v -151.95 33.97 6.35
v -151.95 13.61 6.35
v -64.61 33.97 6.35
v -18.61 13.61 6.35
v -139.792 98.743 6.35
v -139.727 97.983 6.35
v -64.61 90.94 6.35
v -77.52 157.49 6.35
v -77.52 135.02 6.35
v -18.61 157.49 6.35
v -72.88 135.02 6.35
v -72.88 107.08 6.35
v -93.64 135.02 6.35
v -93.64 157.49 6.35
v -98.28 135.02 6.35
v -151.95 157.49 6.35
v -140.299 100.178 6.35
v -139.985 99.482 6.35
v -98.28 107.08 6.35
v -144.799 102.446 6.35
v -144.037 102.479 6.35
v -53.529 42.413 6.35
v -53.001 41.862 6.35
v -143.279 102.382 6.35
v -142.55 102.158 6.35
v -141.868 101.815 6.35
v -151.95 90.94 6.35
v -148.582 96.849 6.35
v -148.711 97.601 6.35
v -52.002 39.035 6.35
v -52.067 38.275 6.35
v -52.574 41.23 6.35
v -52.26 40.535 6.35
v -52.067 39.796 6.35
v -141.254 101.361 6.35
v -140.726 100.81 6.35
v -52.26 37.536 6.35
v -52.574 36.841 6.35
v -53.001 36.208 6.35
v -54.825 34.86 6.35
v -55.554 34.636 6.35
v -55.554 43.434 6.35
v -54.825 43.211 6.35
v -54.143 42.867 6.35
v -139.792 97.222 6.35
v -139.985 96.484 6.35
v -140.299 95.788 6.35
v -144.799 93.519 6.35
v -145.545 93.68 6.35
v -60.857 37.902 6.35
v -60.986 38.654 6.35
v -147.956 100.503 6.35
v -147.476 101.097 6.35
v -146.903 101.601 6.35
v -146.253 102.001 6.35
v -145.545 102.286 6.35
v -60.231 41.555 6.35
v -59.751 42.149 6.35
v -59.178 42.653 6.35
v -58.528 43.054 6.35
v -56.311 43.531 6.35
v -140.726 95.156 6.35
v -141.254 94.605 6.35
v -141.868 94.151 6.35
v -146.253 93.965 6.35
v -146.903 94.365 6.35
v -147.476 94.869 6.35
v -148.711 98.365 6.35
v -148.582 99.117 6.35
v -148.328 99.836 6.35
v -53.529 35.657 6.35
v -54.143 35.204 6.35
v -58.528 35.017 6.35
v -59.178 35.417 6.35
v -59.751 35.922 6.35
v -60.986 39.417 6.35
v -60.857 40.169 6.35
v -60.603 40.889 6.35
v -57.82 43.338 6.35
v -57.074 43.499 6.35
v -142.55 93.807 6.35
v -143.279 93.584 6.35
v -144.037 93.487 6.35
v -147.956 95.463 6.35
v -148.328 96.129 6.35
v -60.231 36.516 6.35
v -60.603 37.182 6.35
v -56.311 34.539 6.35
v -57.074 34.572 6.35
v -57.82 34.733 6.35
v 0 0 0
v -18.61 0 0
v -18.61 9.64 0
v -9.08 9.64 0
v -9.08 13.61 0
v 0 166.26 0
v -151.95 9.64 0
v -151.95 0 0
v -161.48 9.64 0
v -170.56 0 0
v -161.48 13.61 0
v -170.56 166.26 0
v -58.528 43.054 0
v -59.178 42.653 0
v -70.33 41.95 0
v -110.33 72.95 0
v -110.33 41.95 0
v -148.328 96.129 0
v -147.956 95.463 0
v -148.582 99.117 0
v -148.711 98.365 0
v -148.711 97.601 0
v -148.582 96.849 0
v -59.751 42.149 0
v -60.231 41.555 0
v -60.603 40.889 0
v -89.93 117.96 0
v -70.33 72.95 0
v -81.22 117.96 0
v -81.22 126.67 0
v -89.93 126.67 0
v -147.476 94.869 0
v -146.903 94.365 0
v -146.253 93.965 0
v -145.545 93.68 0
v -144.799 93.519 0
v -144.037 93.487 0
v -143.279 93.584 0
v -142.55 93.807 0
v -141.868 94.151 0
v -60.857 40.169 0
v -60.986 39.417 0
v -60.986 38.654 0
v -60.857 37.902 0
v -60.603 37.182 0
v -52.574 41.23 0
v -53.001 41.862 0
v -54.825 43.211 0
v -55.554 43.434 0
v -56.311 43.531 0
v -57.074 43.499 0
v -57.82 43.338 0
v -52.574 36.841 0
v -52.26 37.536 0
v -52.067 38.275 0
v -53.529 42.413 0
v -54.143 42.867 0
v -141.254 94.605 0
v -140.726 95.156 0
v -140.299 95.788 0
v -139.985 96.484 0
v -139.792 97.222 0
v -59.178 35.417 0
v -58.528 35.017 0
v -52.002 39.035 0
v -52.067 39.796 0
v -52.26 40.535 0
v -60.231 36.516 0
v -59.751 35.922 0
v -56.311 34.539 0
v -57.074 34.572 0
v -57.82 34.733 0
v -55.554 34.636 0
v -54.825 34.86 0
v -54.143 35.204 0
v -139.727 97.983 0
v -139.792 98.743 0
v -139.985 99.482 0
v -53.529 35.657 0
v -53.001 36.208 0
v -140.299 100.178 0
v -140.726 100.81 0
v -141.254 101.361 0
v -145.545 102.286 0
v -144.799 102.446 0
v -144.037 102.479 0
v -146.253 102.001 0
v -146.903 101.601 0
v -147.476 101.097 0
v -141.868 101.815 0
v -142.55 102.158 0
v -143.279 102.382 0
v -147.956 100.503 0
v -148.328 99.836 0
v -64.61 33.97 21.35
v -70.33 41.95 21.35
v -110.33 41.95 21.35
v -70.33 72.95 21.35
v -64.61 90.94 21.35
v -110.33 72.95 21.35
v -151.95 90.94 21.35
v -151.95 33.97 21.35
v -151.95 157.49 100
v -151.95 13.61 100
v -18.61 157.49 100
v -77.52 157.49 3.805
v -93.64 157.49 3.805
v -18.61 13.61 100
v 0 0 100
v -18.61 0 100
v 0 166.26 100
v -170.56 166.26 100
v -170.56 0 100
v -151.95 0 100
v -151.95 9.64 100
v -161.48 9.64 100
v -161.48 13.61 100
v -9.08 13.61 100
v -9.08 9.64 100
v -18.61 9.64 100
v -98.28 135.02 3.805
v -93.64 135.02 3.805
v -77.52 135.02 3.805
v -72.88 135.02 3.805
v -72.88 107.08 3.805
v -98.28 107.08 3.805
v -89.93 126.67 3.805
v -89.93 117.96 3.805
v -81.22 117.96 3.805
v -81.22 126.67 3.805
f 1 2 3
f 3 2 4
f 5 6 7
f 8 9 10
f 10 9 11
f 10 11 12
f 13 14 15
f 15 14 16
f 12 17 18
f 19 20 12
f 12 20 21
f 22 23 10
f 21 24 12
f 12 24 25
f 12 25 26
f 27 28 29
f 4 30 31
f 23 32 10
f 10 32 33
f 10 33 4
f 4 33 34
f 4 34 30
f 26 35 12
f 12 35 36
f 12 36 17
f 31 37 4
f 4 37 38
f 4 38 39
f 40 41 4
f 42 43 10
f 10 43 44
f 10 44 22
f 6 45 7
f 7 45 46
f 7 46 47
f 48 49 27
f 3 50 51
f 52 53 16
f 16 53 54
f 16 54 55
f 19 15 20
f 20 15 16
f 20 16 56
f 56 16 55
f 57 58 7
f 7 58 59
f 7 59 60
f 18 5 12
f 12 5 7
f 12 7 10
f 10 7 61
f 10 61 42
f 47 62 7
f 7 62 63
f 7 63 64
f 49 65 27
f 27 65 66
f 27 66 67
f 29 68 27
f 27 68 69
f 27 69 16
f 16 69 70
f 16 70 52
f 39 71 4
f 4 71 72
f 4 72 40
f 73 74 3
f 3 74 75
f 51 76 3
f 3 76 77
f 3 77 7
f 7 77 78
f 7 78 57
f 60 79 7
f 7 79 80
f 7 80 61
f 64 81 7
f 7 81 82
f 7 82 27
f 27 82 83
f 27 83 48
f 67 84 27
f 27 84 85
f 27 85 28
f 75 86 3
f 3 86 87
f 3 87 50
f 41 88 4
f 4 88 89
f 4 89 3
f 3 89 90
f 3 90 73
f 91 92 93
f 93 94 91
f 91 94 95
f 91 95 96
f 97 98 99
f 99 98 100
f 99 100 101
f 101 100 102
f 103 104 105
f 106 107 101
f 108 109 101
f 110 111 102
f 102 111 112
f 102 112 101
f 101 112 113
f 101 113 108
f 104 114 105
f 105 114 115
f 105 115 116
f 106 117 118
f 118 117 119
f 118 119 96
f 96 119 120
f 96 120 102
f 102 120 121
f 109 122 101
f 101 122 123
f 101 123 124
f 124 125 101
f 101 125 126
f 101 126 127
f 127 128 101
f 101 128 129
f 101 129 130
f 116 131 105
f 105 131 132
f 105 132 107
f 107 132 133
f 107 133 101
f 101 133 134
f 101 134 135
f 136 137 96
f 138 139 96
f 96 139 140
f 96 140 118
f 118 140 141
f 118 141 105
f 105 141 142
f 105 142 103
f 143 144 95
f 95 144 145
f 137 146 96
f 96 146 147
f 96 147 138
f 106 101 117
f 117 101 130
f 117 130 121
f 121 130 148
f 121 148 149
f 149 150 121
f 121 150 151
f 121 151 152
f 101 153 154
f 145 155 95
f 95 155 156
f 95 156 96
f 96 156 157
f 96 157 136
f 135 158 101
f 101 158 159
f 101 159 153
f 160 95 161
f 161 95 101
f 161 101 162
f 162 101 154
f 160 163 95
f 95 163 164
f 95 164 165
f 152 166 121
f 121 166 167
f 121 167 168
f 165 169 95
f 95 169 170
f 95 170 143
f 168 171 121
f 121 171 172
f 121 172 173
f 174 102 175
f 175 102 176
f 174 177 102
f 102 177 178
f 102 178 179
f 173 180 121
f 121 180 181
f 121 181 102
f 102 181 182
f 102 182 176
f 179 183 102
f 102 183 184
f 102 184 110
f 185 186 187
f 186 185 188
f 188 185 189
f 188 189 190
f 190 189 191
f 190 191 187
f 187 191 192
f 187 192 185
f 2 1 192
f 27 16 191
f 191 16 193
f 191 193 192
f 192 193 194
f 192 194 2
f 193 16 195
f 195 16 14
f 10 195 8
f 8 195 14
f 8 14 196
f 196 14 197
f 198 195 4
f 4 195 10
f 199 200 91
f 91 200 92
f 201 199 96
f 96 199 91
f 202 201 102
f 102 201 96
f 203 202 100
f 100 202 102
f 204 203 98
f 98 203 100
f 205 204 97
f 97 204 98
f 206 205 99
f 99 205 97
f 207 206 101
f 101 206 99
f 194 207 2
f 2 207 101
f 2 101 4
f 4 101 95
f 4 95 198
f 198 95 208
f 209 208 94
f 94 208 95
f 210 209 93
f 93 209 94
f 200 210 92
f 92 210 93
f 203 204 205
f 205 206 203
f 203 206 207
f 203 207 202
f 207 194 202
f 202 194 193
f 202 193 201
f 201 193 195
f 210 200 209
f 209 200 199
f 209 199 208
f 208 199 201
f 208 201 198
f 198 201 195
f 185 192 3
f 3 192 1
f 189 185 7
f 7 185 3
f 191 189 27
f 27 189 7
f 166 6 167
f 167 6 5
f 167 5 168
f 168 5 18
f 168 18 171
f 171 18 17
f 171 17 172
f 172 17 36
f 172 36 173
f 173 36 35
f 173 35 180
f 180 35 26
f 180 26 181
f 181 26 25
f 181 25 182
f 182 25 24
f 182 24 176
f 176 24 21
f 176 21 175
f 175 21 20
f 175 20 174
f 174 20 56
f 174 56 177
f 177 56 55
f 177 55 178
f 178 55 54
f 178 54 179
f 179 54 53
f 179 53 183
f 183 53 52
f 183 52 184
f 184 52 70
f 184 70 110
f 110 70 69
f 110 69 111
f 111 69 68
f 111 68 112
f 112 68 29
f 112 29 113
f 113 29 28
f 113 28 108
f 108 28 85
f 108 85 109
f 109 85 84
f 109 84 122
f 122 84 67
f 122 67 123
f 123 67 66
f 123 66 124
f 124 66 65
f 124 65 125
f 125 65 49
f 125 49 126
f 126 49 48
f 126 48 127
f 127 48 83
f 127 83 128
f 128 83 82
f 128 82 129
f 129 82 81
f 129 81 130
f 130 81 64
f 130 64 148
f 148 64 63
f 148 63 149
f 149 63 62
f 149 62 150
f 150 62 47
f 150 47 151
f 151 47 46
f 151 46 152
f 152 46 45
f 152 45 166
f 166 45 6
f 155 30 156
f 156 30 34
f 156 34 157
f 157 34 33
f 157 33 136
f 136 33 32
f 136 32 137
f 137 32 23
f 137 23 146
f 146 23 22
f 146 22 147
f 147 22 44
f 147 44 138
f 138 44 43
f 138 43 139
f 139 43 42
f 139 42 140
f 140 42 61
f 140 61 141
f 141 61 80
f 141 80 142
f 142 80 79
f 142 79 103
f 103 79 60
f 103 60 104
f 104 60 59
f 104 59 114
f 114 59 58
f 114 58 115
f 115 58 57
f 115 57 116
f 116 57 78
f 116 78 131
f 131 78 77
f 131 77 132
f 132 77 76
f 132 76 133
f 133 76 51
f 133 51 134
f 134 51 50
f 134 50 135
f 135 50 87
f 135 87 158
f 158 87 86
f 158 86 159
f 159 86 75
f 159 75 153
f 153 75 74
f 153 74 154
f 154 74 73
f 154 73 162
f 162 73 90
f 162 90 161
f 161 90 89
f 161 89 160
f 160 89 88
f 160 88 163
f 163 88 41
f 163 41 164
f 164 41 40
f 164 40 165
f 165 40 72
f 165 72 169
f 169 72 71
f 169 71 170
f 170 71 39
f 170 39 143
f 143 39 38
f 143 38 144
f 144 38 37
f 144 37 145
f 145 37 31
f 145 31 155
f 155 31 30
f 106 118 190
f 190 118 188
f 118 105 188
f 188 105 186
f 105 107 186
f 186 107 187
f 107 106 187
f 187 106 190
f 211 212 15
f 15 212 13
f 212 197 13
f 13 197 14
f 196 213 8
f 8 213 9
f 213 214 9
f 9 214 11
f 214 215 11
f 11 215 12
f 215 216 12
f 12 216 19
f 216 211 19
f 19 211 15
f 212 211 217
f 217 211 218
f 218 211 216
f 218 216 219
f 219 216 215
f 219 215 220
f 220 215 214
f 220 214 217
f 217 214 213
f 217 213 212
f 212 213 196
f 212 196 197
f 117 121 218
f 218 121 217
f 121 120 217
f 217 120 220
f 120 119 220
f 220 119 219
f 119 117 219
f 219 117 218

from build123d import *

# Parameters (mm, degrees)
BOSS_EXTRUDE1_DEPTH = 100
SKETCH2_W           = 133.34
SKETCH2_H           = 143.88
BOSS_EXTRUDE2_DEPTH = 6.35
SKETCH3_W           = 87.34
SKETCH3_H           = 56.97
BOSS_EXTRUDE3_DEPTH = 15
SKETCH4_R           = 4.5
CUT_EXTRUDE1_DEPTH  = 256.936366505
SKETCH5_W           = 40
SKETCH5_H           = 31
CUT_EXTRUDE2_DEPTH  = 251.836448109
CUT_EXTRUDE3_DEPTH  = 2.545
SKETCH7_W           = 8.71
SKETCH7_H           = 8.71
CUT_EXTRUDE4_DEPTH  = 257.878530097


with BuildPart() as part:
    # Sketch1 → Boss-Extrude1 (new body)
    with BuildSketch(Plane.XY):
        Polygon((0, 0), (0, 166.26), (-170.56, 166.26), (-170.56, 0), (-151.95, 0), (-151.95, 9.64), (-161.48, 9.64), (-161.48, 13.61), (-151.95, 13.61), (-151.95, 157.49), (-18.61, 157.49), (-18.61, 13.61), (-9.08, 13.61), (-9.08, 9.64), (-18.61, 9.64), (-18.61, 0), align=None)
    extrude(amount=BOSS_EXTRUDE1_DEPTH)

    # Sketch2 → Boss-Extrude2 (add)
    with BuildSketch(Plane(origin=(0, 0, 0), x_dir=(-1, 0, 0), z_dir=(0, 0, -1))):
        with Locations((85.28, 85.55)):
            Rectangle(SKETCH2_W, SKETCH2_H)
    extrude(amount=-BOSS_EXTRUDE2_DEPTH)

    # Sketch3 → Boss-Extrude3 (add)
    with BuildSketch(Plane.XY.offset(6.35)):
        with Locations((-108.28, 62.455)):
            Rectangle(SKETCH3_W, SKETCH3_H)
    extrude(amount=BOSS_EXTRUDE3_DEPTH)

    # Sketch4 → Cut-Extrude1 (cut, through all)
    with BuildSketch(Plane.XY.offset(6.35)):
        with Locations((-56.502483378, 39.035418079)):
            Circle(SKETCH4_R)
        with Locations((-144.227493726, 97.982911805)):
            Circle(SKETCH4_R)
    extrude(amount=-CUT_EXTRUDE1_DEPTH, mode=Mode.SUBTRACT)

    # Sketch5 → Cut-Extrude2 (cut, through all)
    with BuildSketch(Plane.XY.offset(21.35)):
        with Locations((-90.33, 57.45)):
            Rectangle(SKETCH5_W, SKETCH5_H)
    extrude(amount=-CUT_EXTRUDE2_DEPTH, mode=Mode.SUBTRACT)

    # Sketch6 → Cut-Extrude3 (cut)
    with BuildSketch(Plane.XY.offset(6.35)):
        Polygon((-77.52, 157.49), (-77.52, 135.02), (-72.88, 135.02), (-72.88, 107.08), (-98.28, 107.08), (-98.28, 135.02), (-93.64, 135.02), (-93.64, 157.49), align=None)
    extrude(amount=-CUT_EXTRUDE3_DEPTH, mode=Mode.SUBTRACT)

    # Sketch7 → Cut-Extrude4 (cut, through all)
    with BuildSketch(Plane.XY.offset(3.805)):
        with Locations((-85.575, 122.315)):
            Rectangle(SKETCH7_W, SKETCH7_H)
    extrude(amount=-CUT_EXTRUDE4_DEPTH, mode=Mode.SUBTRACT)


solid = part.part
